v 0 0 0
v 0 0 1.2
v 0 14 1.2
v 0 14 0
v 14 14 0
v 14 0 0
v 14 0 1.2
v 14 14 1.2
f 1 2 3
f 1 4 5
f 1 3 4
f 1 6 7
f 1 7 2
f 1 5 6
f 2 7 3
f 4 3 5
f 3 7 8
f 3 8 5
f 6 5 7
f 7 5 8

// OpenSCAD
/* Warning, this is a very basic generator with a lot of approximation 
input data : [TFBGA, 4HB, 14x14x1.2mm, 343, , A, C04-21516A]
generated by com.zoubworld.electronics.cad.model3d.Basic
Date : Sun Feb 15 10:50:49 CET 2026
*/

//body
color("black")
translate([0,0,0])
cube([14.0,14.0,1.2], center=false);
